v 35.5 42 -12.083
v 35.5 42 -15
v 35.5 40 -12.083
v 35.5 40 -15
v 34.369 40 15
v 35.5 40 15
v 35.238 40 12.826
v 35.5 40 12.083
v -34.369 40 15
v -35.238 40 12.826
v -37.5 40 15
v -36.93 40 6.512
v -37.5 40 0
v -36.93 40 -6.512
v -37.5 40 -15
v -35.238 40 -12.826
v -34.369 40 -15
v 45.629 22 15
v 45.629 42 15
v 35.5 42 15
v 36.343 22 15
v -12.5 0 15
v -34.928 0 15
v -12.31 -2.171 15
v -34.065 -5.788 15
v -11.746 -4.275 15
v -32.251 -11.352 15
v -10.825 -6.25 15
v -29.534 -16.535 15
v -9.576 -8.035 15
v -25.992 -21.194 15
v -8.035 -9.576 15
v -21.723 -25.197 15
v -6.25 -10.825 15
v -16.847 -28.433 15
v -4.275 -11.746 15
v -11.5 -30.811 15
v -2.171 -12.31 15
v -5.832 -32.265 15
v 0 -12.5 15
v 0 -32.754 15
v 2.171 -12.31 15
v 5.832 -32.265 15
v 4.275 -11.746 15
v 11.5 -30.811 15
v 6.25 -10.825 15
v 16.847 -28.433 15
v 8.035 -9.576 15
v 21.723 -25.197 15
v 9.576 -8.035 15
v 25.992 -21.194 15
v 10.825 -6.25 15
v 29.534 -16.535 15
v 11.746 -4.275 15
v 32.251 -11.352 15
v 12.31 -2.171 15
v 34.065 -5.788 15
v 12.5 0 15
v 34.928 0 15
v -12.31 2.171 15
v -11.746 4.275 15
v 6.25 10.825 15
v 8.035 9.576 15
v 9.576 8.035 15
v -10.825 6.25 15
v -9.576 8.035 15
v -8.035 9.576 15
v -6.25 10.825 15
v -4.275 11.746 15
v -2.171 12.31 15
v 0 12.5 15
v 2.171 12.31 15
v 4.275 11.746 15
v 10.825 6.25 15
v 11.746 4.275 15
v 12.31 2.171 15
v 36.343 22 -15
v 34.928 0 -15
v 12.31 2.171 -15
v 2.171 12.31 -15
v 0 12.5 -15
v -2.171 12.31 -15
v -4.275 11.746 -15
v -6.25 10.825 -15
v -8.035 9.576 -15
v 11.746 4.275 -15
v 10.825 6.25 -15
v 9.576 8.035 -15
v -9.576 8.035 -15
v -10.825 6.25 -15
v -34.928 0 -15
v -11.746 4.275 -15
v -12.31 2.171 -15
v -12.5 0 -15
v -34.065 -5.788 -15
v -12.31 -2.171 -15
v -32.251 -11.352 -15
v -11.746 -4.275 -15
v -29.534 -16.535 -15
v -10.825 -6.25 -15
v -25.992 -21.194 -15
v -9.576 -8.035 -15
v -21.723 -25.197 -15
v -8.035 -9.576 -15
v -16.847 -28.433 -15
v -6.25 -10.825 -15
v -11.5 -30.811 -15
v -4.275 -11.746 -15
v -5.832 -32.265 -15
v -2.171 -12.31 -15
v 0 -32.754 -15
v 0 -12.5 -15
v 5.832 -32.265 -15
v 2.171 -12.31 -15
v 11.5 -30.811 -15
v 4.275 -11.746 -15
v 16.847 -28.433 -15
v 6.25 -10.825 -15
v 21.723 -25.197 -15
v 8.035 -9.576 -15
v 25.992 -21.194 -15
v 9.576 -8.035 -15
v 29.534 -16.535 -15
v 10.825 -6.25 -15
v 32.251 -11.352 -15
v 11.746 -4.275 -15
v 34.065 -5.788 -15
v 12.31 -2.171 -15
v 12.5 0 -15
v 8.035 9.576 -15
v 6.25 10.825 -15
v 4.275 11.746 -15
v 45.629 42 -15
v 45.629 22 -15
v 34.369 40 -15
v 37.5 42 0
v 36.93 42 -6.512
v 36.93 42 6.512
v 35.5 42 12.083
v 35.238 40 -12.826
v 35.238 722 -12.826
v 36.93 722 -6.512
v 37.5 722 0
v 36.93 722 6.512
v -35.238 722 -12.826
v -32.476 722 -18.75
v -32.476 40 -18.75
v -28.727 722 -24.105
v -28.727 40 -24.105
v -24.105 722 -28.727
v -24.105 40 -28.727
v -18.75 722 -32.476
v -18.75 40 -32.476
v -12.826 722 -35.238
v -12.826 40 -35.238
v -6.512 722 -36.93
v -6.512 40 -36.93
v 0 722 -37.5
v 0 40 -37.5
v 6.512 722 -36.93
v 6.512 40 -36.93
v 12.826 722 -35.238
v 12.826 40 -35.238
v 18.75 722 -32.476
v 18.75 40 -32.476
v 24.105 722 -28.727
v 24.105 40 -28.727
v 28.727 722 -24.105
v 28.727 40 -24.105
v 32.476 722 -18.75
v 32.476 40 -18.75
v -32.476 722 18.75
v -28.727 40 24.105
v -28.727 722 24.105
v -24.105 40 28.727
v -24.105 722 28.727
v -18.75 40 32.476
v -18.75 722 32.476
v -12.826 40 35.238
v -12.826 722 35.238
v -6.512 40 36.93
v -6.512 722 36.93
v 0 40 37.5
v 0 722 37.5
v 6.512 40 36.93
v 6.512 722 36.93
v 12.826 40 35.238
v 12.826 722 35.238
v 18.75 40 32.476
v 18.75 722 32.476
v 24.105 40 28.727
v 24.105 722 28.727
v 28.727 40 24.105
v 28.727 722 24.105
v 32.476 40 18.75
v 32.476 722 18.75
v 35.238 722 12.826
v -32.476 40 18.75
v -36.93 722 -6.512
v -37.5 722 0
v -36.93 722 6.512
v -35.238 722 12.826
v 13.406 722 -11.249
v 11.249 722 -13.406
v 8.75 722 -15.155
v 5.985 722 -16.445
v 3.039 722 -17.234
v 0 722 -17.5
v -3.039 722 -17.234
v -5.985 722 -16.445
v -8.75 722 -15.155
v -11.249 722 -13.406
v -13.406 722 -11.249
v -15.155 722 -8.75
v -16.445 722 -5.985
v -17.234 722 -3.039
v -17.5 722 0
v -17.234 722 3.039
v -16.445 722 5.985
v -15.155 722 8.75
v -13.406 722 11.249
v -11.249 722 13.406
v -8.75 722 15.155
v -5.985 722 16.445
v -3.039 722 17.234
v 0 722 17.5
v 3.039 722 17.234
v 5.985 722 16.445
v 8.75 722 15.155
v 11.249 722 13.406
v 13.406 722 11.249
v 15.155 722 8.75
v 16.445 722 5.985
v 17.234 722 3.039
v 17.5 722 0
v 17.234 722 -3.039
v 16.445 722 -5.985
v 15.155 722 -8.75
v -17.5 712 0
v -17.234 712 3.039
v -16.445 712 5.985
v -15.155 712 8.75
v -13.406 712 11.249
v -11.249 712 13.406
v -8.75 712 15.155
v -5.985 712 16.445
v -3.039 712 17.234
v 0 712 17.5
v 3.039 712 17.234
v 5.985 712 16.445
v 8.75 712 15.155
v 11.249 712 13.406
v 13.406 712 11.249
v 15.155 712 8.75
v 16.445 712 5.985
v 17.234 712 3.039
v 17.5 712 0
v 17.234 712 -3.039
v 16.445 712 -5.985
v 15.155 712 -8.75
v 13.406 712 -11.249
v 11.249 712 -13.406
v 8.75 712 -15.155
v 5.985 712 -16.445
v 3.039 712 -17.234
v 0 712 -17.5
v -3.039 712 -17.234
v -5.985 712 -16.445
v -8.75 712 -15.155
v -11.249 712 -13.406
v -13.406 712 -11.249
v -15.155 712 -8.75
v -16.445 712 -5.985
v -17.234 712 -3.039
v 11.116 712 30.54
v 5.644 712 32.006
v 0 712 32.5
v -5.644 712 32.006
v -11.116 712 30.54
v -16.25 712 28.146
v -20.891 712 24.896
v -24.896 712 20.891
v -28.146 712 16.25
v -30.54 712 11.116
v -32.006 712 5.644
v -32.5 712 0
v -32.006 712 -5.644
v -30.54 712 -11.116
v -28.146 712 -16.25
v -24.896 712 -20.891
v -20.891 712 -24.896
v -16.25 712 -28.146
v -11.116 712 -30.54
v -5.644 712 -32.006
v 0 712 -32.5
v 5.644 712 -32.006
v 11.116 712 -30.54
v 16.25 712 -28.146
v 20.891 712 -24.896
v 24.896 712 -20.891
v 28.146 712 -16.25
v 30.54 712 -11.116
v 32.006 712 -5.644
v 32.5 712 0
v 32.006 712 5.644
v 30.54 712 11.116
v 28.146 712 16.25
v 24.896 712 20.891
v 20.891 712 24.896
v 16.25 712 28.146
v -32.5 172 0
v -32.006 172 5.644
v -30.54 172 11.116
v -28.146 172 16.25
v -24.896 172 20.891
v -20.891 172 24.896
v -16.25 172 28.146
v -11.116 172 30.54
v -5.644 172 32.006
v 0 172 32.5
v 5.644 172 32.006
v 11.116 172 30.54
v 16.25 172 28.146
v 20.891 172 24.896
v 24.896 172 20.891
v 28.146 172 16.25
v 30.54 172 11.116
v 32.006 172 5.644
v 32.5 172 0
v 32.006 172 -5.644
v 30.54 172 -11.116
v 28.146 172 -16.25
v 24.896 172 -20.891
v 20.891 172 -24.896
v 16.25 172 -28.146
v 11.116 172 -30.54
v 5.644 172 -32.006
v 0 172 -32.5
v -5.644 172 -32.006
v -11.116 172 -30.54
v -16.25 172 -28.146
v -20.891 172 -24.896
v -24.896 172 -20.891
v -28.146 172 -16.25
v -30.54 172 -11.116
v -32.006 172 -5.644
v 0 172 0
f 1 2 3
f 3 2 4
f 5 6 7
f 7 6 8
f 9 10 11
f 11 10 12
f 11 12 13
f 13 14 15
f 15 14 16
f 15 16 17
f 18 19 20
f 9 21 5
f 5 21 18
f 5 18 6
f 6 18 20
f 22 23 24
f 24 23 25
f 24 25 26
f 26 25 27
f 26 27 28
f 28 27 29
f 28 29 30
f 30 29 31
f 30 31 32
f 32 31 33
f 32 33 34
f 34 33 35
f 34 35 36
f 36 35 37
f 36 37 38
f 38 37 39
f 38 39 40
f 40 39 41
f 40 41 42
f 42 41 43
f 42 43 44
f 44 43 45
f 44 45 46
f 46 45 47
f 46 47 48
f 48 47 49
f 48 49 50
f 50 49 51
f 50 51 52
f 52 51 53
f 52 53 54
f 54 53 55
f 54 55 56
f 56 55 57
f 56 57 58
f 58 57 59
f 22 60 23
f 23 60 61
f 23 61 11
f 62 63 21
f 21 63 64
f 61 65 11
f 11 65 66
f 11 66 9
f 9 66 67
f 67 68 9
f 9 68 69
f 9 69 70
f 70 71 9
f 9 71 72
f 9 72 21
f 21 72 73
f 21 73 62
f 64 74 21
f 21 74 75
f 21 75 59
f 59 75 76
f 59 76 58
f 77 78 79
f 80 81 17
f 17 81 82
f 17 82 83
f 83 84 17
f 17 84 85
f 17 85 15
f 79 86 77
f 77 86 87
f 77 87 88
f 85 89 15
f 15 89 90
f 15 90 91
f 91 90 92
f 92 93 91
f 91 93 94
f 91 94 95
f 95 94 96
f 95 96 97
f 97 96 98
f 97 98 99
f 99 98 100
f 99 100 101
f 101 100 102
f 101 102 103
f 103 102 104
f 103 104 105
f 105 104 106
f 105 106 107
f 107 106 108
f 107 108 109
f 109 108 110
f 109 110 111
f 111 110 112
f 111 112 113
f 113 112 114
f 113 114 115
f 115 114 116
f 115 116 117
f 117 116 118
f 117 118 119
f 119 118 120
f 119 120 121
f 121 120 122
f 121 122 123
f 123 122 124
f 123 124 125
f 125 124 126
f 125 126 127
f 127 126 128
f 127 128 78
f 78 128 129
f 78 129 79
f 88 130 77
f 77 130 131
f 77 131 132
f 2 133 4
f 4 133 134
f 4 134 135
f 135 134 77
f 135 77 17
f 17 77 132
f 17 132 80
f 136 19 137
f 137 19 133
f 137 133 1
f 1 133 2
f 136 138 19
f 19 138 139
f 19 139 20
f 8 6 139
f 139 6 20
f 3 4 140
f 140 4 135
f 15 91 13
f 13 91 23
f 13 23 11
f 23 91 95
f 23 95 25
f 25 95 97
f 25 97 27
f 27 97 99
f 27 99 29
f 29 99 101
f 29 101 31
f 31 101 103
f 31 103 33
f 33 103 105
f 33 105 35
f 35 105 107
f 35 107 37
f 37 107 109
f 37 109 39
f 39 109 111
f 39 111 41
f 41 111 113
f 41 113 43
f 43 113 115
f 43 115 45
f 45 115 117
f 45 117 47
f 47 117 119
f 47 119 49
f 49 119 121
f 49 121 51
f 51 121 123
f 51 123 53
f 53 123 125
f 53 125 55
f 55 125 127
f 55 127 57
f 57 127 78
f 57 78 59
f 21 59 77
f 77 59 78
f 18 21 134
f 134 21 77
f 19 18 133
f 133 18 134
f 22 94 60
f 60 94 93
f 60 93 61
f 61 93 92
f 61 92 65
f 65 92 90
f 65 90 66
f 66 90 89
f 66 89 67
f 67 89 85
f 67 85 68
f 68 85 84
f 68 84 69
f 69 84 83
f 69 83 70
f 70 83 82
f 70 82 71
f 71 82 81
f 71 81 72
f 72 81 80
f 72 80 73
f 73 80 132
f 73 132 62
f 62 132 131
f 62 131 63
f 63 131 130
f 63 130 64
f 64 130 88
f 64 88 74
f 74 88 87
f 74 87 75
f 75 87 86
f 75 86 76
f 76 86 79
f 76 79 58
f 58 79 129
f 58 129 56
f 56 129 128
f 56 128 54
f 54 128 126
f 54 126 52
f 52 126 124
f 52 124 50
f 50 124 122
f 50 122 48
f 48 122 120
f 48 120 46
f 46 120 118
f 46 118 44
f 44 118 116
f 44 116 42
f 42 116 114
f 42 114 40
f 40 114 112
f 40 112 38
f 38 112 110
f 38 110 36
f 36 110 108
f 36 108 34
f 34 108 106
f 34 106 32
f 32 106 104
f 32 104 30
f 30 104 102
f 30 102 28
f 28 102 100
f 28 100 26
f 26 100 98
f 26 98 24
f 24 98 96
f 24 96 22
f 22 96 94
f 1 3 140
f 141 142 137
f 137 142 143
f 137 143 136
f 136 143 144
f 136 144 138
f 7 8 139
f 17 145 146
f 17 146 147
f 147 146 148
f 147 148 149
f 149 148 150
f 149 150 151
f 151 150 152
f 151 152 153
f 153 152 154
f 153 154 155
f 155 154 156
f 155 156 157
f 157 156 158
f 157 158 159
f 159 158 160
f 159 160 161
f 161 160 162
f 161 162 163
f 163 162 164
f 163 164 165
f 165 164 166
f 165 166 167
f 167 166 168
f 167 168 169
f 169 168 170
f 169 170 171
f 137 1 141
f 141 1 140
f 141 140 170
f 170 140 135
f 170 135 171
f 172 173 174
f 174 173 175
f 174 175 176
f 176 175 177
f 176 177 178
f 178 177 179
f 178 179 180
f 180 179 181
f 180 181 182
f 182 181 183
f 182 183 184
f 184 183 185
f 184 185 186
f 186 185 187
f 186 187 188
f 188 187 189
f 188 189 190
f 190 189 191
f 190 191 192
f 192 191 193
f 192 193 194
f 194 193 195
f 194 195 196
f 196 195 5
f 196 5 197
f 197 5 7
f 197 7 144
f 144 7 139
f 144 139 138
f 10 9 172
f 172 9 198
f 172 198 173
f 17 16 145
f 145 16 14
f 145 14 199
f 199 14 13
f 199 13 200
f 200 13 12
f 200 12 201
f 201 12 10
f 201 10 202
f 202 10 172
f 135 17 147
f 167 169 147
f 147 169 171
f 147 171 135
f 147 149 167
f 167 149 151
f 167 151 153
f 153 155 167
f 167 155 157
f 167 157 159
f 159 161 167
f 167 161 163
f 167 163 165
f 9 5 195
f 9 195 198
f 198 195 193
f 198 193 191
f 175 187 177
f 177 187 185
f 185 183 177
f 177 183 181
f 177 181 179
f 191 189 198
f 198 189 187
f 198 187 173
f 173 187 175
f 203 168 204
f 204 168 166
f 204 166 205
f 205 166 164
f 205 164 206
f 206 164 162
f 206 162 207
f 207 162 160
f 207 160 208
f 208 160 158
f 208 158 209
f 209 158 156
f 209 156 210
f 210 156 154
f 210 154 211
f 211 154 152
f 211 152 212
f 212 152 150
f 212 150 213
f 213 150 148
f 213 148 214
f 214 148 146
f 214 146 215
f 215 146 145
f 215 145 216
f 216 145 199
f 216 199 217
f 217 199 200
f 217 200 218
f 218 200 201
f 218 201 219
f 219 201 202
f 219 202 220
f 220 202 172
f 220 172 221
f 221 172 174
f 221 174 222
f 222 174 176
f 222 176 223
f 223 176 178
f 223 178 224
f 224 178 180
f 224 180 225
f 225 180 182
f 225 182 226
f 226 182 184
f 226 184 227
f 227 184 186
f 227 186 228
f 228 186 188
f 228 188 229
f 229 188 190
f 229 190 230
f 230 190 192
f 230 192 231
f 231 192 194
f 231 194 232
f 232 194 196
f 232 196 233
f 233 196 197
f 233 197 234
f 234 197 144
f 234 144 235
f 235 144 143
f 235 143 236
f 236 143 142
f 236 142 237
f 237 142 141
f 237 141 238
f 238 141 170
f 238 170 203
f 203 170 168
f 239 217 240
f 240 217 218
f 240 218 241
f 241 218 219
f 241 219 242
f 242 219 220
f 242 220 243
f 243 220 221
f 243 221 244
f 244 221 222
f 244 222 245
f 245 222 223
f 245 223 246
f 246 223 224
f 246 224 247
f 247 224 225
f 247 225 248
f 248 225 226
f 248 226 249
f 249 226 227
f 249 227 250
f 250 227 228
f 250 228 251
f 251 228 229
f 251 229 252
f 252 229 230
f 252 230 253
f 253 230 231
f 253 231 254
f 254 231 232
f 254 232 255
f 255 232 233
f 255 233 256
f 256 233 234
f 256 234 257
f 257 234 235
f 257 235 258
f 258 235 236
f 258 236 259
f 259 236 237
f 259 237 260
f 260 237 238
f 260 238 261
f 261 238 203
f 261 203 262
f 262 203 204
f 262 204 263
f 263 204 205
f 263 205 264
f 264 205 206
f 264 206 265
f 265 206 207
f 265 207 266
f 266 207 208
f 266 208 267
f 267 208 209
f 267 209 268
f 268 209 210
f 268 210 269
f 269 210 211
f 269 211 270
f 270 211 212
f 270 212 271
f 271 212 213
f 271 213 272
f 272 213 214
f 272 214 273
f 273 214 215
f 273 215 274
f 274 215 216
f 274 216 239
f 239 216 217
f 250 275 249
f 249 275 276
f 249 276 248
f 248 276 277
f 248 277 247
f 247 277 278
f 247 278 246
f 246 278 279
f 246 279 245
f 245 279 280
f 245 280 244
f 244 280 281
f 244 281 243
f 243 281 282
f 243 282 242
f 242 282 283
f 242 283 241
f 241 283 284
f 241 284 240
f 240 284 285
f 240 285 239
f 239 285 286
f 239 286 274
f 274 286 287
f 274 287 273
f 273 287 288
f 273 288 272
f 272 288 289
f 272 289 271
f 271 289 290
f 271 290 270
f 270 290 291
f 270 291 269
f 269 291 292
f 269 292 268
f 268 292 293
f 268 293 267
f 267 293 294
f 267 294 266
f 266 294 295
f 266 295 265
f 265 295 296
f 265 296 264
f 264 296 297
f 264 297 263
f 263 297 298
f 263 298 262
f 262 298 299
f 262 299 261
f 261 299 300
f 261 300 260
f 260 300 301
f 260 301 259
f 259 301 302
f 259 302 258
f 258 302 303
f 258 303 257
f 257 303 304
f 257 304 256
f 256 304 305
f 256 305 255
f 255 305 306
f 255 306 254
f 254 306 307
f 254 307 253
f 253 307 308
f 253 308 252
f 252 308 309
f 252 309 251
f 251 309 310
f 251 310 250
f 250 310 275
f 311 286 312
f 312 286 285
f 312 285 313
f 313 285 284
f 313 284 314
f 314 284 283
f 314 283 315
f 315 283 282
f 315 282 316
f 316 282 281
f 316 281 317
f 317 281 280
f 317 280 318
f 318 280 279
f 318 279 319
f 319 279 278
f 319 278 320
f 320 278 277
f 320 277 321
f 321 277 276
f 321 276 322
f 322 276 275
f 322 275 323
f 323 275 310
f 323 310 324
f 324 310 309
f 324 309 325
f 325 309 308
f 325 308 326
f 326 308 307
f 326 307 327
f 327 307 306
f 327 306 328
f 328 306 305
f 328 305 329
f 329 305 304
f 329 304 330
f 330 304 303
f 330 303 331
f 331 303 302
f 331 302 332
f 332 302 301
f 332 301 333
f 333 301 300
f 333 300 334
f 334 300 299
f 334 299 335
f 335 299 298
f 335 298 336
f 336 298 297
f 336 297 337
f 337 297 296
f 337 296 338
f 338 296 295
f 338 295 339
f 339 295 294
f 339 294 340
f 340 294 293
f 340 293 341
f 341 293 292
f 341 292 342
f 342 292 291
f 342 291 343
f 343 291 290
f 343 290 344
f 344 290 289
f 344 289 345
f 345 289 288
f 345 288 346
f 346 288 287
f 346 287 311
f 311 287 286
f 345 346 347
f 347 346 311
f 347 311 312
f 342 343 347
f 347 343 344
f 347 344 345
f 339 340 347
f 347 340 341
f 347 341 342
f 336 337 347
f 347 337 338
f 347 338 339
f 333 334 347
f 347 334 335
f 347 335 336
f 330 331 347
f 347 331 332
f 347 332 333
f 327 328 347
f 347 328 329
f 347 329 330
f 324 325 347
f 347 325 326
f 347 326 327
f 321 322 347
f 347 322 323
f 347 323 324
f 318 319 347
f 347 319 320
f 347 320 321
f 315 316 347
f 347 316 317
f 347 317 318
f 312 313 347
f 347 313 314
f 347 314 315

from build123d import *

# Parameters (mm, degrees)
SKETCH1_R           = 12.5
BOSS_EXTRUDE1_DEPTH = 15


with BuildPart() as part:
    # Sketch1 → Boss-Extrude1 (new body, symmetric)
    with BuildSketch(Plane.XY):
        with BuildLine():
            Line((37.628606884, 42), (35.5, 42))
            Line((35.5, 42), (35.5, 40))
            Line((35.5, 40), (-37.5, 40))
            Line((-37.5, 40), (-34.927862315, 0))
            ThreePointArc((-34.927862315, 0), (0, -32.754018227), (34.927862315, 0))
            Line((34.927862315, 0), (36.342538042, 22))
            Line((36.342538042, 22), (45.628606884, 22))
            Line((45.628606884, 22), (45.628606884, 42))
            Line((45.628606884, 42), (37.628606884, 42))
        make_face()
        Circle(SKETCH1_R, mode=Mode.SUBTRACT)
    extrude(amount=BOSS_EXTRUDE1_DEPTH, both=True)

    # Sketch2 → Revolve1 (revolve)
    with BuildSketch(Plane.XY):
        Polygon((-37.5, 722), (-17.5, 722), (-17.5, 712), (-32.5, 712), (-32.5, 172), (0, 172), (0, 40), (-37.5, 40), align=None)
    revolve(axis=Axis((0, 722, 0), (0, -1, 0)))


solid = part.part
